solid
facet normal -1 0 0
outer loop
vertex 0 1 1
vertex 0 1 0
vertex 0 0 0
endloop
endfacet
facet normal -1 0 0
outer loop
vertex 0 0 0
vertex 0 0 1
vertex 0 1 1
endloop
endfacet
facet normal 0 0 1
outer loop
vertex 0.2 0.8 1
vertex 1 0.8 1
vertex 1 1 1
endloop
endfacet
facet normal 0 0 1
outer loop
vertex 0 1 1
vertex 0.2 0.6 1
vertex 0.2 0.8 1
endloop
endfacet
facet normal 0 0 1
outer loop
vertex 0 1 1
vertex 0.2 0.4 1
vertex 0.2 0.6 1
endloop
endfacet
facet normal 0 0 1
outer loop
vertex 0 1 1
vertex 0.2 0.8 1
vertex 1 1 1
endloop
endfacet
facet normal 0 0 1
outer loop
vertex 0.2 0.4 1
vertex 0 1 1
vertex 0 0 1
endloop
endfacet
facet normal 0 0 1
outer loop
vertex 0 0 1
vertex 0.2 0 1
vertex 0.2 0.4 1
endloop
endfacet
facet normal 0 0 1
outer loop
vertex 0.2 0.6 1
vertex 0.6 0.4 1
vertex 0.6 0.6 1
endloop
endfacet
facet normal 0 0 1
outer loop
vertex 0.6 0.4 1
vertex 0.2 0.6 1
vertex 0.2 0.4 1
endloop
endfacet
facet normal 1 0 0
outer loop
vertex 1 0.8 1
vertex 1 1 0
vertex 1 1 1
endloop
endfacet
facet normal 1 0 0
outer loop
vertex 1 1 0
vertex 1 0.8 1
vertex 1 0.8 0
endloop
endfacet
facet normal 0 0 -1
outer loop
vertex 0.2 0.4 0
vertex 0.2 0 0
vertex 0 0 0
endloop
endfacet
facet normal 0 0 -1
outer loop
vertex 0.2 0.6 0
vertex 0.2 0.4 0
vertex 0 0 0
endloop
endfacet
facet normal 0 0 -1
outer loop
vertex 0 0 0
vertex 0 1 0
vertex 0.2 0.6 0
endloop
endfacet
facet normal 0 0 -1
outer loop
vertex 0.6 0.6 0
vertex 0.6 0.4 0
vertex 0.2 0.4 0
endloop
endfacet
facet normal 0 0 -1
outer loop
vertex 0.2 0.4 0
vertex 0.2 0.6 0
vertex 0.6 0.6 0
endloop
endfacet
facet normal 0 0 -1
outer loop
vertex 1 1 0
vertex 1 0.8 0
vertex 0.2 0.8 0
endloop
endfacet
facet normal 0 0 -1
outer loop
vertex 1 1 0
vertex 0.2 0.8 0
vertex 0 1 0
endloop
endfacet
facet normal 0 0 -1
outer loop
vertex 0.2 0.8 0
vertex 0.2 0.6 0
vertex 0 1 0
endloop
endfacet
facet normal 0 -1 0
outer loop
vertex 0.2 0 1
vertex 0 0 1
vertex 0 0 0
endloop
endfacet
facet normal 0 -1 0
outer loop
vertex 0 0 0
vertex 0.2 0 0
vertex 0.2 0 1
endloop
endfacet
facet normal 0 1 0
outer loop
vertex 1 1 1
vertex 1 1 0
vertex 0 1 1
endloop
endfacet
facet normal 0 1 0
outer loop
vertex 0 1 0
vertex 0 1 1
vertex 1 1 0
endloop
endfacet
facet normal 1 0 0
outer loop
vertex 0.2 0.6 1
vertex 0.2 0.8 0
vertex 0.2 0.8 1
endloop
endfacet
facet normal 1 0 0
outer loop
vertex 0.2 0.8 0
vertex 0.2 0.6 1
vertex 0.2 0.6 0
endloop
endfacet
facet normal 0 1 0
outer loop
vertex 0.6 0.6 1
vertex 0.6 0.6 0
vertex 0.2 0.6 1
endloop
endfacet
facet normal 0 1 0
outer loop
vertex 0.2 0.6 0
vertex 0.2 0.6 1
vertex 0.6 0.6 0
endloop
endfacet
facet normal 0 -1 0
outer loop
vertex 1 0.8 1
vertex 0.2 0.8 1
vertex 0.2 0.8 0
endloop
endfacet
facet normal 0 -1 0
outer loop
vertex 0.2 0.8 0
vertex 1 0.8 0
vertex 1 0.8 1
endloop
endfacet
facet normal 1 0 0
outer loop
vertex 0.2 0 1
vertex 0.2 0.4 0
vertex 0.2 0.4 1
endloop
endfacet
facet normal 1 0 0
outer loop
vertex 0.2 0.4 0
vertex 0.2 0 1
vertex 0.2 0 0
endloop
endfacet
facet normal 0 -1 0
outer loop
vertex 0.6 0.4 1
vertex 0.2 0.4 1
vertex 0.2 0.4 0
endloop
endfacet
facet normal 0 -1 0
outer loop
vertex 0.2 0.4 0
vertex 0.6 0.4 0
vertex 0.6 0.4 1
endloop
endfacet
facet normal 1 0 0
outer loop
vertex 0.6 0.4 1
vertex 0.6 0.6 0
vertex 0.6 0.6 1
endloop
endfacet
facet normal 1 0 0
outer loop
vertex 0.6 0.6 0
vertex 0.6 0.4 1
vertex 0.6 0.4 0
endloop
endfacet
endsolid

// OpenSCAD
difference() {
  translate([0.5000000000, 0.5000000000, 0.5000000000]) {
    translate([-0.5000000000, -0.5000000000, -0.5000000000]) {
      cube([1, 1, 1]);
    }
  }
  difference() {
    translate([0.6000000000, 0.4000000000, 0.5000000000]) {
      scale([0.8000000000, 0.8000000000, 1.0000000000]) {
        translate([-0.5000000000, -0.5000000000, -0.5000000000]) {
          cube([1, 1, 1]);
        }
      }
    }
    translate([0.3999995000, 0.4999995000, 0.5000000000]) {
      scale([0.4000000000, 0.2000000000, 1.0000000000]) {
        translate([-0.5000000000, -0.5000000000, -0.5000000000]) {
          cube([1, 1, 1]);
        }
      }
    }
  }
}
